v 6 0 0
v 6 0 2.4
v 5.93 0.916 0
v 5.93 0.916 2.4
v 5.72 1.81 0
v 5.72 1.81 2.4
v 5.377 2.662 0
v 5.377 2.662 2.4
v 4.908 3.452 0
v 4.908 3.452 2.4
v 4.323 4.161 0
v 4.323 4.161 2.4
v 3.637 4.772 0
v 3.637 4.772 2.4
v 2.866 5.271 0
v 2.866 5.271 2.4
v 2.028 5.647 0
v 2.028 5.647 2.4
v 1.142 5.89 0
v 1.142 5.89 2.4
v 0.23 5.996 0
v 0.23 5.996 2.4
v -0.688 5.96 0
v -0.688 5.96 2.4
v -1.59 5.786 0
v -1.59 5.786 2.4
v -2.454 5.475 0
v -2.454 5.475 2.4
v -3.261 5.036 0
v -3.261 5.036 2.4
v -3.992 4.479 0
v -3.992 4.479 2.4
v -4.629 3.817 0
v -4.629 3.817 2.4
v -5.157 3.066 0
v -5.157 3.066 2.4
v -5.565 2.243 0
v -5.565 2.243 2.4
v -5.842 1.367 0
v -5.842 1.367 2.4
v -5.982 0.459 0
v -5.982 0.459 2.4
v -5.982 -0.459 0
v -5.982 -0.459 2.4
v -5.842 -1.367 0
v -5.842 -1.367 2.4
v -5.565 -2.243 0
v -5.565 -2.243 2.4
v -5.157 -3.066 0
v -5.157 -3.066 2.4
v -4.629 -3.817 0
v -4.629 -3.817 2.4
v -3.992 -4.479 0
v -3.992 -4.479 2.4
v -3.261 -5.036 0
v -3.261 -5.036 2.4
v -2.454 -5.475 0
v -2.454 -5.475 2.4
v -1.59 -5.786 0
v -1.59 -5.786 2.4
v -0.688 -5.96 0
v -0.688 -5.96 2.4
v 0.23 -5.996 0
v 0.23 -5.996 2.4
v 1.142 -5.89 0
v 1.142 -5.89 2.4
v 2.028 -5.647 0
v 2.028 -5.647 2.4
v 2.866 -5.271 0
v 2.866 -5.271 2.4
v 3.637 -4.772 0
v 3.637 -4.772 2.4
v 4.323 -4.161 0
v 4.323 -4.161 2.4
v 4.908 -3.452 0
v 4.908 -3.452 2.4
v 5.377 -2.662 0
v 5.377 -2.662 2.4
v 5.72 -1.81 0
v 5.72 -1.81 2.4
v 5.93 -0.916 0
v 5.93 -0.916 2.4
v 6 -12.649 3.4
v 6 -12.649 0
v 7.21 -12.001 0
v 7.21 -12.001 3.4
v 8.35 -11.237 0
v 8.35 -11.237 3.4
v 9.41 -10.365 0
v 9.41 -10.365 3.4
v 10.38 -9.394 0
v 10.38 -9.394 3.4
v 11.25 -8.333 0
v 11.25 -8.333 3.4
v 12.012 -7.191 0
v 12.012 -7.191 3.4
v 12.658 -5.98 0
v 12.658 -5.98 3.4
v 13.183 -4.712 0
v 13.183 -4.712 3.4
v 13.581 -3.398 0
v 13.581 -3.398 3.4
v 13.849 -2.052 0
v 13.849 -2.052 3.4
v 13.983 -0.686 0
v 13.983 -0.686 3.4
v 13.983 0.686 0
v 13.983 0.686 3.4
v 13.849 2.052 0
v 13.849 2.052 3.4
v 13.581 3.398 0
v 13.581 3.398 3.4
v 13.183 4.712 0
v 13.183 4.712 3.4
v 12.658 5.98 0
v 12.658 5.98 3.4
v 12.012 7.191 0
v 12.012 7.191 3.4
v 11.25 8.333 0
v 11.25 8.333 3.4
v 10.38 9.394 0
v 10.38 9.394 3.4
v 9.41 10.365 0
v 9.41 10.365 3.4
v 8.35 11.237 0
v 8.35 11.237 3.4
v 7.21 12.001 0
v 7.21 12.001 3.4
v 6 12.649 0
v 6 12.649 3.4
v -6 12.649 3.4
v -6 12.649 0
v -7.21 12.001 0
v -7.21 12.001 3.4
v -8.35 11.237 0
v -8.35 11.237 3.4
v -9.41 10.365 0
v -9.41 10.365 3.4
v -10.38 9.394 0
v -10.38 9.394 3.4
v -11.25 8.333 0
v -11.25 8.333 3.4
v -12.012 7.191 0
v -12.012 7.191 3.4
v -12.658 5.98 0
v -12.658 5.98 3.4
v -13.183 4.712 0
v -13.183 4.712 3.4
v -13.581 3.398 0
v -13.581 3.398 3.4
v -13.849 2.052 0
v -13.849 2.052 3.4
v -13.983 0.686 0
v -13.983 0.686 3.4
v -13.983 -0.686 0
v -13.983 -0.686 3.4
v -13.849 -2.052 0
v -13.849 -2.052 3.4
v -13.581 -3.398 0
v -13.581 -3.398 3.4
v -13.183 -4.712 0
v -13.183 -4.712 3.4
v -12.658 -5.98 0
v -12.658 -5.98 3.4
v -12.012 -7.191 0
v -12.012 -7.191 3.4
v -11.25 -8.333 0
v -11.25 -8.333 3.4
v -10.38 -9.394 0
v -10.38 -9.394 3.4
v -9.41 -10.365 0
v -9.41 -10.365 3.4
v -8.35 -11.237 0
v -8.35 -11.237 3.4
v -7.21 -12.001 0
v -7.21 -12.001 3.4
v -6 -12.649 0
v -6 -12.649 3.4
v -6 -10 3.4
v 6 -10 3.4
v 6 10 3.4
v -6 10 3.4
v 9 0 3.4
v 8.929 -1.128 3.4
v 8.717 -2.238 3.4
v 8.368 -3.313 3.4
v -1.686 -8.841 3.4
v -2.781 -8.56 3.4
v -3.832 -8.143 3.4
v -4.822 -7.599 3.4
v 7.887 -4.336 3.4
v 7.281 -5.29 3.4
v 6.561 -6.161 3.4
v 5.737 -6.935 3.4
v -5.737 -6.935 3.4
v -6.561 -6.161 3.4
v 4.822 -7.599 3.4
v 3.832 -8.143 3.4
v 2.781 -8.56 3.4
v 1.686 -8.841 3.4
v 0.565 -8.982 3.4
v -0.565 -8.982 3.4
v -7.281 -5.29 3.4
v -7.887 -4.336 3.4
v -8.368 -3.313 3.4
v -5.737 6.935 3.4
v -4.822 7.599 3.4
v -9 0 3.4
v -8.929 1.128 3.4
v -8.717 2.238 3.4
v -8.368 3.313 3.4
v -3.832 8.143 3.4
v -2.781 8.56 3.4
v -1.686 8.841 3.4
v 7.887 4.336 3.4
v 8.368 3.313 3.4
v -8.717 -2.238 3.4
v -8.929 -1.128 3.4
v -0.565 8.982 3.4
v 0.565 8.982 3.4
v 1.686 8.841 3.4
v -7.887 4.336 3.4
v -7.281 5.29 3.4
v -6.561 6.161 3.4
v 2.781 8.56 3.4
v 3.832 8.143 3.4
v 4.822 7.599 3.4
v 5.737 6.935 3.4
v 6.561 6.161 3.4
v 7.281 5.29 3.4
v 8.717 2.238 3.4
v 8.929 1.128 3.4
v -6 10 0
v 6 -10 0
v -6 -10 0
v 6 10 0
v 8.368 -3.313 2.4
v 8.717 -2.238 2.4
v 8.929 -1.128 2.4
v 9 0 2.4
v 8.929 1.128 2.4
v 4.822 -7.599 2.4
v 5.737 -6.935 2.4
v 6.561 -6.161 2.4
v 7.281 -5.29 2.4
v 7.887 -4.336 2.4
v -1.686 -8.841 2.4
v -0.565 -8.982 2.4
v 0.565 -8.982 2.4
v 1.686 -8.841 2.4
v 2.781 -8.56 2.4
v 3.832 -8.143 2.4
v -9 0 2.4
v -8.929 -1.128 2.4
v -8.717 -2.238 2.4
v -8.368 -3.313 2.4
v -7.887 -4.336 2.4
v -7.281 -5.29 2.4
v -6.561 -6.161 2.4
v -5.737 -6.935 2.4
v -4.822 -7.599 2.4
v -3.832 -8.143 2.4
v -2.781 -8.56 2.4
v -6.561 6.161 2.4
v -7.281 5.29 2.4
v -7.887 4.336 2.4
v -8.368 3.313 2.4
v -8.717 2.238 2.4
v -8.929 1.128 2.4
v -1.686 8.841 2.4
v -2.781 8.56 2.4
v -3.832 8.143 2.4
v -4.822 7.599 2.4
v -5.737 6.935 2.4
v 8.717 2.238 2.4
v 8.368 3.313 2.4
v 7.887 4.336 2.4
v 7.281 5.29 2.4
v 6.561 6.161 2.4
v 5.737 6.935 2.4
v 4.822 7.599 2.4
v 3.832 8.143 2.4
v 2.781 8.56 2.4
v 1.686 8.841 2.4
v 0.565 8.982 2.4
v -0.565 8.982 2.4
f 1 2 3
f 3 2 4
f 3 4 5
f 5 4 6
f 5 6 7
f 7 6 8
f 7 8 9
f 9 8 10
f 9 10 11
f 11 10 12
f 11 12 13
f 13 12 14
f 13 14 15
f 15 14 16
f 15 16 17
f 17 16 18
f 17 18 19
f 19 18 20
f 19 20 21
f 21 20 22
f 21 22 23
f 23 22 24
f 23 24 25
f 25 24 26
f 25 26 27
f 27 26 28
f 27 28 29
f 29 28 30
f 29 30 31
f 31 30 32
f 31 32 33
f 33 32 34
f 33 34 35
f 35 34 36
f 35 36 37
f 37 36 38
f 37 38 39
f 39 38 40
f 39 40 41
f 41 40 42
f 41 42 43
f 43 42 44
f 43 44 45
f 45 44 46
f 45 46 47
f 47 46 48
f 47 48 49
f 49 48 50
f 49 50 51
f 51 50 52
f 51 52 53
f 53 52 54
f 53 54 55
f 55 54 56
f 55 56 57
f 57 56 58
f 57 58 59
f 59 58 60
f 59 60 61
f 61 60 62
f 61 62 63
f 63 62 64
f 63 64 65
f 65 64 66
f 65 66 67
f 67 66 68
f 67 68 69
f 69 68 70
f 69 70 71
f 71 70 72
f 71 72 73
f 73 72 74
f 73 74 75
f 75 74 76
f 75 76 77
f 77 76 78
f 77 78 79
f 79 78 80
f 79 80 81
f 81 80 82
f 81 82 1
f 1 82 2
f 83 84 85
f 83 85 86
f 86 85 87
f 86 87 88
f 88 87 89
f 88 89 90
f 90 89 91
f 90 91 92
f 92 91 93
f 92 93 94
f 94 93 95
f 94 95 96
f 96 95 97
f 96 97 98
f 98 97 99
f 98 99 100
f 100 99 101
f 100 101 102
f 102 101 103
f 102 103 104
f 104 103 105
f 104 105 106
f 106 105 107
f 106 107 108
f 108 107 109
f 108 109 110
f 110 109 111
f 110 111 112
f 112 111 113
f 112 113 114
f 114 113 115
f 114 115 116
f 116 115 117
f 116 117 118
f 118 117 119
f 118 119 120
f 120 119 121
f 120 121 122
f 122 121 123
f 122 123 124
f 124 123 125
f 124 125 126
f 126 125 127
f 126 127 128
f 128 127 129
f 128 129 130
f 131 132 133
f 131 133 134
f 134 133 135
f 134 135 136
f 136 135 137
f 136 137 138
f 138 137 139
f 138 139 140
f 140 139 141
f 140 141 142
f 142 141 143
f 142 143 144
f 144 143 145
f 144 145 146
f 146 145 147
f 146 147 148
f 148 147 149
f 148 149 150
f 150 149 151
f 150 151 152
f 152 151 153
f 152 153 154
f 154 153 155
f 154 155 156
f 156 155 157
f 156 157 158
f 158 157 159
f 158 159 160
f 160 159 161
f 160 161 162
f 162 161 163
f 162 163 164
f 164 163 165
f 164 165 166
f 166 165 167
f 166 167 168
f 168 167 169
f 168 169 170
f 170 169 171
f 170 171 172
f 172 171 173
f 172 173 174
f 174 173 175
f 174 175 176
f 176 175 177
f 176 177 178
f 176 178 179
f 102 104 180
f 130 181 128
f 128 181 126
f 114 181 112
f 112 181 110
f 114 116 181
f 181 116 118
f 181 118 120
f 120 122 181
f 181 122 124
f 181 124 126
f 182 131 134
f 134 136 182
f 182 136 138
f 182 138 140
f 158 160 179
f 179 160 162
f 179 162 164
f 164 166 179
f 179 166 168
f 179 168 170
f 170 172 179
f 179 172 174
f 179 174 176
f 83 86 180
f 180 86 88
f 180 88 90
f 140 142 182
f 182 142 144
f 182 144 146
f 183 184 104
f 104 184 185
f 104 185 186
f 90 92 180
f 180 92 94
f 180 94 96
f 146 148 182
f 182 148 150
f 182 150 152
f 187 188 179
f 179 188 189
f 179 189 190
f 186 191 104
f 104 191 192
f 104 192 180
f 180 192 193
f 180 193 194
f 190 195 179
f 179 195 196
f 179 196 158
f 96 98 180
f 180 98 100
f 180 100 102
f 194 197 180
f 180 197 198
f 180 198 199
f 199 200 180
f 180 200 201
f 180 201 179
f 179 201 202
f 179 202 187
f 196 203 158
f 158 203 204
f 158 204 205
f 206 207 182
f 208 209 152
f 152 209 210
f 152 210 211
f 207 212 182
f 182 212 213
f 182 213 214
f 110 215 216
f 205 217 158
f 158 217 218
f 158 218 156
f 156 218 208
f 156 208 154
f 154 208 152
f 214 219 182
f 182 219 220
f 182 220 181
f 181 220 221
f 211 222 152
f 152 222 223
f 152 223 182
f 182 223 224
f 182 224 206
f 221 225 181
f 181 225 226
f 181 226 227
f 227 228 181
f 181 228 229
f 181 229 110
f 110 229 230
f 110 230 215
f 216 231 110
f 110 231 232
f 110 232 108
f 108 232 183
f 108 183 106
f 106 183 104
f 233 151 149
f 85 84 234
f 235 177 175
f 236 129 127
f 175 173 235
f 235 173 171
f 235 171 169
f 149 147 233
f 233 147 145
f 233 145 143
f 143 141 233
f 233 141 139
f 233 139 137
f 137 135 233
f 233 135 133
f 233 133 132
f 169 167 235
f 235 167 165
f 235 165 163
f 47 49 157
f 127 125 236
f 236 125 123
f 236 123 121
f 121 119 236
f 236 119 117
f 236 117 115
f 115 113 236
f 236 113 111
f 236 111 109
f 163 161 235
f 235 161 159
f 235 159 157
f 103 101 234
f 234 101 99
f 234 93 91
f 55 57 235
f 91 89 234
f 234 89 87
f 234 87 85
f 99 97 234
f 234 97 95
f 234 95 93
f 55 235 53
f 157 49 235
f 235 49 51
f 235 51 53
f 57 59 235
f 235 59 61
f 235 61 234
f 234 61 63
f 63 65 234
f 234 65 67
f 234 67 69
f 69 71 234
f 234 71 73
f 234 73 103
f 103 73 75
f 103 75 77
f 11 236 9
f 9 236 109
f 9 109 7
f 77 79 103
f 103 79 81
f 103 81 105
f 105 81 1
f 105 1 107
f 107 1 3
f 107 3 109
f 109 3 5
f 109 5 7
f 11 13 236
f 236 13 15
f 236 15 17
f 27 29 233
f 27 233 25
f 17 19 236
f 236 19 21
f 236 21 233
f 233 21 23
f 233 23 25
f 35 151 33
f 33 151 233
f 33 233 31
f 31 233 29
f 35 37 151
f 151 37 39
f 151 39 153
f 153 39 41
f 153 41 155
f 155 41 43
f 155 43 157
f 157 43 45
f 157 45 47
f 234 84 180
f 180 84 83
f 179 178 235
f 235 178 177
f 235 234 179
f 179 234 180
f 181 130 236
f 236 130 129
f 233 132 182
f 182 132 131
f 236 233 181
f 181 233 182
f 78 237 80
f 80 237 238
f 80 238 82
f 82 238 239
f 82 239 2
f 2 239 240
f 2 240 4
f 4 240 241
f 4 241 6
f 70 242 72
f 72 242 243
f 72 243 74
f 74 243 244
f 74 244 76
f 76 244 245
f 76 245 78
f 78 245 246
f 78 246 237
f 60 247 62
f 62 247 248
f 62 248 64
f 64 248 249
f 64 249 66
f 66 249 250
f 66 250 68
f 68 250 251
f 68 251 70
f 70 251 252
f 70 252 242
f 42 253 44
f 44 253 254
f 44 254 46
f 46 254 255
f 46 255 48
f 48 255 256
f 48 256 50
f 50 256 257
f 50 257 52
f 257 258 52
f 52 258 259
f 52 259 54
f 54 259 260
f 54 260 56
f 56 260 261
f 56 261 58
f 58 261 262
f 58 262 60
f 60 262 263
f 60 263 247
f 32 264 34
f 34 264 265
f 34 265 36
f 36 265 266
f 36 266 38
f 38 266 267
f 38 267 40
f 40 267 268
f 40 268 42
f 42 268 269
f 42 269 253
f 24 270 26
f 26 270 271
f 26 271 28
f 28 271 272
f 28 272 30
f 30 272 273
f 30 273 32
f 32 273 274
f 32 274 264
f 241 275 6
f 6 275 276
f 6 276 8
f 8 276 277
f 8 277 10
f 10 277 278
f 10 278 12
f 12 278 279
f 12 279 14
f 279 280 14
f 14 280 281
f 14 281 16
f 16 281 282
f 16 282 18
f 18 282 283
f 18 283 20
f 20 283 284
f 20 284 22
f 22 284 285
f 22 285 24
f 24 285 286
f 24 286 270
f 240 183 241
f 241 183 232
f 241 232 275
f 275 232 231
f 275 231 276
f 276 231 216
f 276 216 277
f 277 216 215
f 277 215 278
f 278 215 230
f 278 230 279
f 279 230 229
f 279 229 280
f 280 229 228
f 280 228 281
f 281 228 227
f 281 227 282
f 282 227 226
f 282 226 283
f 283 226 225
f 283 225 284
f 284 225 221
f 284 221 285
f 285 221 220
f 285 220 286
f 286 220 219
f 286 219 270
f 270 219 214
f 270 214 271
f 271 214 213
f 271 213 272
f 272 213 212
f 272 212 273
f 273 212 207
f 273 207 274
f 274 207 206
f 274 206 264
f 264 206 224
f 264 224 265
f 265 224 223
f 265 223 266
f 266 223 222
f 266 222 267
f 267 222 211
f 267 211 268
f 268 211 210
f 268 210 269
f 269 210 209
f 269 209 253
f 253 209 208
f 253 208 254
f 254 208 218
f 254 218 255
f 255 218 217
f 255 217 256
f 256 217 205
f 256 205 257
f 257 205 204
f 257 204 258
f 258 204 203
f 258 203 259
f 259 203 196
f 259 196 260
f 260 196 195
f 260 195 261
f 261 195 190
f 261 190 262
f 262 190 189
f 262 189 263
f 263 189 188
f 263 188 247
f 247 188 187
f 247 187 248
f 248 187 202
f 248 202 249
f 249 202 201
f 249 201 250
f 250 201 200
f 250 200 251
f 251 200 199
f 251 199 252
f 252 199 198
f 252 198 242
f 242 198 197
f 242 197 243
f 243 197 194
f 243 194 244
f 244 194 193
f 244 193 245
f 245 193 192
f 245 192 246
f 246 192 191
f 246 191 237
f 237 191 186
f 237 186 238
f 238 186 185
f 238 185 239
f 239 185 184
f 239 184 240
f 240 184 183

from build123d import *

# Parameters (mm, degrees)
SKETCH_1_R          = 14
EXTRUDE_1_DEPTH     = 3.4
SKETCH_2_R          = 6
CUT_EXTRUDE_1_DEPTH = 3.4
SKETCH_3_W          = 12
SKETCH_3_H          = 8
CUT_EXTRUDE_2_DEPTH = 3.4
SKETCH_4_R          = 9
CUT_EXTRUDE_3_DEPTH = 1


with BuildPart() as part:
    # 스케치1 → 보스-돌출1 (new body)
    with BuildSketch(Plane.XY):
        Circle(SKETCH_1_R)
    extrude(amount=EXTRUDE_1_DEPTH)

    # 스케치2 → 컷-돌출1 (cut)
    with BuildSketch(Plane.XY.offset(3.4)):
        Circle(SKETCH_2_R)
    extrude(amount=-CUT_EXTRUDE_1_DEPTH, mode=Mode.SUBTRACT)

    # 스케치3 → 컷-돌출2 (cut)
    with BuildSketch(Plane.XY.offset(3.4)):
        with Locations((0, 14)):
            Rectangle(SKETCH_3_W, SKETCH_3_H)
        with Locations((0, -14)):
            Rectangle(SKETCH_3_W, SKETCH_3_H)
    extrude(amount=-CUT_EXTRUDE_2_DEPTH, mode=Mode.SUBTRACT)

    # 스케치4 → 컷-돌출3 (cut)
    with BuildSketch(Plane.XY.offset(3.4)):
        Circle(SKETCH_4_R)
    extrude(amount=-CUT_EXTRUDE_3_DEPTH, mode=Mode.SUBTRACT)


solid = part.part
